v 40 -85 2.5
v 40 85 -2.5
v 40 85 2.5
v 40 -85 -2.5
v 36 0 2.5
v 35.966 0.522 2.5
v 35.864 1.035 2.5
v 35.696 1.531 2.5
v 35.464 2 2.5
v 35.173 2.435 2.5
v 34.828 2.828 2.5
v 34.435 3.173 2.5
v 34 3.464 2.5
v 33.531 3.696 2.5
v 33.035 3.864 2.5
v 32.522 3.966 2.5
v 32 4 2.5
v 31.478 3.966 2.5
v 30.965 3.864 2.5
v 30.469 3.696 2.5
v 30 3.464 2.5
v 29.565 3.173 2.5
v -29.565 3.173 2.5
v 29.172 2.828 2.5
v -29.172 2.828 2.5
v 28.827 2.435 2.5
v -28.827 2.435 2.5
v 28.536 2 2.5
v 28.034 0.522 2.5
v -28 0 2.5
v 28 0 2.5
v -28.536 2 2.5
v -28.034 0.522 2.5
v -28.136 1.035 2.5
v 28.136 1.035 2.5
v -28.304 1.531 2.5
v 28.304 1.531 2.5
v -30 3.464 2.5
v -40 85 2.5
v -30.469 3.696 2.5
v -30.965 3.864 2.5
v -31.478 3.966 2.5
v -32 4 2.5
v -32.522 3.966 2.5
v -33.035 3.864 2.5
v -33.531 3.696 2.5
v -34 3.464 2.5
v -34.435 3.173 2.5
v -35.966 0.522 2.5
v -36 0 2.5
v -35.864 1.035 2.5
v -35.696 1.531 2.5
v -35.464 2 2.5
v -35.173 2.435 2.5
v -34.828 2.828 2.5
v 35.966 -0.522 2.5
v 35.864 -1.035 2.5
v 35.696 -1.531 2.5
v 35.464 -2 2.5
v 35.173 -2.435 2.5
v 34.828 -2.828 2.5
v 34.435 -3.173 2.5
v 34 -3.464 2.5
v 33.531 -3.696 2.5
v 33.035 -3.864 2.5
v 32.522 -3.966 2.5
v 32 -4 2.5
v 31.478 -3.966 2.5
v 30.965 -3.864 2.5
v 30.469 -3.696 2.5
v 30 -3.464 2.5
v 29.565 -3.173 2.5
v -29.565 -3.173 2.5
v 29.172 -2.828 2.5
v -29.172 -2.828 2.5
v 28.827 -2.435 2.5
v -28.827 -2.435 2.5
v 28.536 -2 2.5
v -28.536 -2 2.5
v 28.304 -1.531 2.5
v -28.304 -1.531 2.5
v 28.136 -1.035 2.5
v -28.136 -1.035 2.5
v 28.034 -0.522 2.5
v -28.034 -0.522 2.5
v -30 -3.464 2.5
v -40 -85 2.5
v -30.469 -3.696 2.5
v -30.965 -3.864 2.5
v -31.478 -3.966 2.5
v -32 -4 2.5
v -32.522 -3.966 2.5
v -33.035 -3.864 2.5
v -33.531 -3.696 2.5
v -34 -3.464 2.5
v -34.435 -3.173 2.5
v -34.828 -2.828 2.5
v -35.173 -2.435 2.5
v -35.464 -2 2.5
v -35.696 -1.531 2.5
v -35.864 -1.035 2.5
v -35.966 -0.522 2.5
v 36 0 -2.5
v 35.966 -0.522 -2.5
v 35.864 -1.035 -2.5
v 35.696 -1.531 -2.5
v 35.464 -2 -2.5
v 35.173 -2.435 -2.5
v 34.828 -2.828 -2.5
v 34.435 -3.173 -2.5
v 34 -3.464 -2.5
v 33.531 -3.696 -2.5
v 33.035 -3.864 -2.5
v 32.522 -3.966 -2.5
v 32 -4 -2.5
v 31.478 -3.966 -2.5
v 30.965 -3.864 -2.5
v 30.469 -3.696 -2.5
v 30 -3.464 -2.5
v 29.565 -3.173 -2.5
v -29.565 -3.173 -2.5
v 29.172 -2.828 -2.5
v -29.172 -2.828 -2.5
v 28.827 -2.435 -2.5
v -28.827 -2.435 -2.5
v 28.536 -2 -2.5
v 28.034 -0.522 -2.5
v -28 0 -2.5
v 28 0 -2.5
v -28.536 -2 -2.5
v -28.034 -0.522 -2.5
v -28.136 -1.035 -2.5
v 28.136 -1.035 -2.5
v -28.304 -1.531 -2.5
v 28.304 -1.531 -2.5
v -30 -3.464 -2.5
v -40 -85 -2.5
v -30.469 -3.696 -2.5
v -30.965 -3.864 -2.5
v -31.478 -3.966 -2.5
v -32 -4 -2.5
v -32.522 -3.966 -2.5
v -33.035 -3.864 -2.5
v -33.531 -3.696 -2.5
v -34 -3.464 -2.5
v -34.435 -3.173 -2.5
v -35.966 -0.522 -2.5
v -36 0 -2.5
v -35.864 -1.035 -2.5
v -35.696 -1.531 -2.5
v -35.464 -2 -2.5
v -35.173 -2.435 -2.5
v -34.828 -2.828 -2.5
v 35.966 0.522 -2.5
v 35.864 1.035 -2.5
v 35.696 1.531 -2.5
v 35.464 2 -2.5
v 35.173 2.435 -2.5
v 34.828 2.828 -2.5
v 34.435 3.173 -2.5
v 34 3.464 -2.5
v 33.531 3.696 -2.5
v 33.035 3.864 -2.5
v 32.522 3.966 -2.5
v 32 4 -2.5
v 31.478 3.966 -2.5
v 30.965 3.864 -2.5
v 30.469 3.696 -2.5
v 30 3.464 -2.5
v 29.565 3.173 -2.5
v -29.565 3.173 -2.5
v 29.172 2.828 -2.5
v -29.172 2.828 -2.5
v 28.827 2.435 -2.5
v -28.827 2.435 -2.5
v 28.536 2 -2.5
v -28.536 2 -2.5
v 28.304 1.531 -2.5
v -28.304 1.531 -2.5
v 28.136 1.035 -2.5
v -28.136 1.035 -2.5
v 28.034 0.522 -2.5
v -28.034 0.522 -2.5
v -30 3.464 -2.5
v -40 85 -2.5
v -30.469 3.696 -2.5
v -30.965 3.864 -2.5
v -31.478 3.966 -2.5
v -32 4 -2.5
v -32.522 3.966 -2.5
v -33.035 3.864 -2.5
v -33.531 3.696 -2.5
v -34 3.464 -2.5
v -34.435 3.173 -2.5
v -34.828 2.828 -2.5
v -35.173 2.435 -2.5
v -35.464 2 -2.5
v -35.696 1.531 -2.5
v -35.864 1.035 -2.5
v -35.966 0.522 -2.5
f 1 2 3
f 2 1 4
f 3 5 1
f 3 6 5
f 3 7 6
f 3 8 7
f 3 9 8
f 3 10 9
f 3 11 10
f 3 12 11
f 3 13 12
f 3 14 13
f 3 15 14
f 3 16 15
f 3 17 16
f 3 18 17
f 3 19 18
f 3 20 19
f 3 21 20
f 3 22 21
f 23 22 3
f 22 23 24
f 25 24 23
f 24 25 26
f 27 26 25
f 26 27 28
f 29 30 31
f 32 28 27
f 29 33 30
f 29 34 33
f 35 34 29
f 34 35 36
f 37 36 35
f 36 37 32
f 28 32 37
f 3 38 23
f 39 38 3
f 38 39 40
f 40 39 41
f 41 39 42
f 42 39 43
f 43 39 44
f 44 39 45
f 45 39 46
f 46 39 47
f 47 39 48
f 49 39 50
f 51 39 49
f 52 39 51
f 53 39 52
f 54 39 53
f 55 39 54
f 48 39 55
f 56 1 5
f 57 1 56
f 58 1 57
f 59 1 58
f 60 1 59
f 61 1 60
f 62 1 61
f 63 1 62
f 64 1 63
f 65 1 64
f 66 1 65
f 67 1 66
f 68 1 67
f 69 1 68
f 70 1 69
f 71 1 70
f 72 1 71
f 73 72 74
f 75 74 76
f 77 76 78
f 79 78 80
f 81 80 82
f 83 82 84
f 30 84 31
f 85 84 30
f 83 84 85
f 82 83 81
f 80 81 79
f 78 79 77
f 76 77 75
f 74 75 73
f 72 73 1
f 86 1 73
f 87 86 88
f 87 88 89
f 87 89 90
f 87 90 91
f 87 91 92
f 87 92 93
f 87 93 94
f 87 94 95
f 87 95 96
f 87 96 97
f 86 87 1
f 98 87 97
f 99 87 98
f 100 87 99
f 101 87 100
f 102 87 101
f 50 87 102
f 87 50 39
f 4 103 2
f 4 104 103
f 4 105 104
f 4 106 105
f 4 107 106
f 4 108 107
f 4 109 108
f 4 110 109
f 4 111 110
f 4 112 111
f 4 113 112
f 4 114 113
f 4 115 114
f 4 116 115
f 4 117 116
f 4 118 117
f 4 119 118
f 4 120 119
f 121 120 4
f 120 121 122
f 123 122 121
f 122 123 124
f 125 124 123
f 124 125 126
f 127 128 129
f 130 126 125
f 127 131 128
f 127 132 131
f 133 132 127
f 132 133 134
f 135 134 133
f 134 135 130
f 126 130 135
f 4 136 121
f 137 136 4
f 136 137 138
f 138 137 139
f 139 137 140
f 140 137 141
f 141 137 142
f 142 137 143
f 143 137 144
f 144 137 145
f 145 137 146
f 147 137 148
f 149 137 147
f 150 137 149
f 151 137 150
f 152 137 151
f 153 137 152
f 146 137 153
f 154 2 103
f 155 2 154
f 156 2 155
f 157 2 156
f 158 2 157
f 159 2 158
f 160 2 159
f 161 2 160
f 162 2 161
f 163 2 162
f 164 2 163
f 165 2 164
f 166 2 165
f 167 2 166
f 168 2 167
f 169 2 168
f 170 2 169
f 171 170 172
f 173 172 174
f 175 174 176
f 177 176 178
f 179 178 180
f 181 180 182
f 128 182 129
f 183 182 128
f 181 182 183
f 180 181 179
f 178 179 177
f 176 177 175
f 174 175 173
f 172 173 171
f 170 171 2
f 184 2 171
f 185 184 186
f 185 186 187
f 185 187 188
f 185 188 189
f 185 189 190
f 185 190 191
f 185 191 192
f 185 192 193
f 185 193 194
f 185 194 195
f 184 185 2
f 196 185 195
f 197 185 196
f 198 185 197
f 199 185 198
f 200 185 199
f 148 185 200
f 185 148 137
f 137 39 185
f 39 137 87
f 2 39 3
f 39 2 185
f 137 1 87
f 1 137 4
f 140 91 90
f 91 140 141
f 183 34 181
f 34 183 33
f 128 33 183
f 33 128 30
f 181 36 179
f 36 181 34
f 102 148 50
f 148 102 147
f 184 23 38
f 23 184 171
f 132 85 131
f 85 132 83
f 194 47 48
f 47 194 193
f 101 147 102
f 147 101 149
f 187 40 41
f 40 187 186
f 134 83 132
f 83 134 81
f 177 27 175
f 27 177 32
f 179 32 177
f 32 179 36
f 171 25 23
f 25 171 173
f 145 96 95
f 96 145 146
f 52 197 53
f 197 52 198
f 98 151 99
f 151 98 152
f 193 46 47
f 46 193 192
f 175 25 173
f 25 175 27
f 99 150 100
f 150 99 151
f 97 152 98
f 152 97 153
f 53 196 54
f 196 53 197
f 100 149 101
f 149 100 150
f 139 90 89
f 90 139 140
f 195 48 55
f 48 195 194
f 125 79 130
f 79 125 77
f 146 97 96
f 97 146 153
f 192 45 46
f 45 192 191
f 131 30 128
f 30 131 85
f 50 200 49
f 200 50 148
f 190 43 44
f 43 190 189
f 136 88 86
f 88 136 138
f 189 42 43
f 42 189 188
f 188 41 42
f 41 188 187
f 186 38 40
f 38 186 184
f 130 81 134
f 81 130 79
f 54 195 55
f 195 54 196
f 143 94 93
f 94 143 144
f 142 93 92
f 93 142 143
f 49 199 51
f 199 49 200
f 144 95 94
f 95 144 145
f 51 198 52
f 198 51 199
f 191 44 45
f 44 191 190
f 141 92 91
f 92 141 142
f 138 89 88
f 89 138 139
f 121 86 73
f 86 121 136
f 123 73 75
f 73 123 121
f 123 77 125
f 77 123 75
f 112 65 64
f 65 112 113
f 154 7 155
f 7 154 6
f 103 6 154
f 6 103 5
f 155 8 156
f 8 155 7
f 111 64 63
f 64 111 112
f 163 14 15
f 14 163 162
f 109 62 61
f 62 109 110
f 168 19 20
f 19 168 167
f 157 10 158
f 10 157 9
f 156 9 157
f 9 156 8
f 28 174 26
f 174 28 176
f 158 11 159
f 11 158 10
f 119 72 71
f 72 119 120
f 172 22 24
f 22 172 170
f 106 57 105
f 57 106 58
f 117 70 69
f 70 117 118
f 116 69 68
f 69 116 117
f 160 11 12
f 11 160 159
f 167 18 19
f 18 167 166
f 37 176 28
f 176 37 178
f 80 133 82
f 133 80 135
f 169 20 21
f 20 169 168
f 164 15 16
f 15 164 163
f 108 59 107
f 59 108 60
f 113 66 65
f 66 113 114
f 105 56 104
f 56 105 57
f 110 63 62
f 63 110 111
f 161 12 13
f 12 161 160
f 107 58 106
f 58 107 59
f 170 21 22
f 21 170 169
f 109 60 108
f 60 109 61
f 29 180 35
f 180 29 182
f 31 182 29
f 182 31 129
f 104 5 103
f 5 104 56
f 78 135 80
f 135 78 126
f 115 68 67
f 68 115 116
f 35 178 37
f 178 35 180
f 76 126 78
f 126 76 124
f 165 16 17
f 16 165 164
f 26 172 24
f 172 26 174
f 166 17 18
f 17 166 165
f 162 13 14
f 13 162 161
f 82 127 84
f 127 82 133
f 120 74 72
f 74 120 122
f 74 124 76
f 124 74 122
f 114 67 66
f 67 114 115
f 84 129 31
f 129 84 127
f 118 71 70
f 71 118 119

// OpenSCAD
// ========================================
// a 8 x 17 x 0.5 cm plate with two 0.8 cm holes
// NeuroCAD canonical IR; dimensions are millimetres
// ========================================
$fn = 48;

difference() {
  cube(size=[80, 170, 5], center=true);
  translate([-32, 0, 0]) {
    cylinder(r=4, h=7, center=true);
  }
  translate([32, 0, 0]) {
    cylinder(r=4, h=7, center=true);
  }
}
